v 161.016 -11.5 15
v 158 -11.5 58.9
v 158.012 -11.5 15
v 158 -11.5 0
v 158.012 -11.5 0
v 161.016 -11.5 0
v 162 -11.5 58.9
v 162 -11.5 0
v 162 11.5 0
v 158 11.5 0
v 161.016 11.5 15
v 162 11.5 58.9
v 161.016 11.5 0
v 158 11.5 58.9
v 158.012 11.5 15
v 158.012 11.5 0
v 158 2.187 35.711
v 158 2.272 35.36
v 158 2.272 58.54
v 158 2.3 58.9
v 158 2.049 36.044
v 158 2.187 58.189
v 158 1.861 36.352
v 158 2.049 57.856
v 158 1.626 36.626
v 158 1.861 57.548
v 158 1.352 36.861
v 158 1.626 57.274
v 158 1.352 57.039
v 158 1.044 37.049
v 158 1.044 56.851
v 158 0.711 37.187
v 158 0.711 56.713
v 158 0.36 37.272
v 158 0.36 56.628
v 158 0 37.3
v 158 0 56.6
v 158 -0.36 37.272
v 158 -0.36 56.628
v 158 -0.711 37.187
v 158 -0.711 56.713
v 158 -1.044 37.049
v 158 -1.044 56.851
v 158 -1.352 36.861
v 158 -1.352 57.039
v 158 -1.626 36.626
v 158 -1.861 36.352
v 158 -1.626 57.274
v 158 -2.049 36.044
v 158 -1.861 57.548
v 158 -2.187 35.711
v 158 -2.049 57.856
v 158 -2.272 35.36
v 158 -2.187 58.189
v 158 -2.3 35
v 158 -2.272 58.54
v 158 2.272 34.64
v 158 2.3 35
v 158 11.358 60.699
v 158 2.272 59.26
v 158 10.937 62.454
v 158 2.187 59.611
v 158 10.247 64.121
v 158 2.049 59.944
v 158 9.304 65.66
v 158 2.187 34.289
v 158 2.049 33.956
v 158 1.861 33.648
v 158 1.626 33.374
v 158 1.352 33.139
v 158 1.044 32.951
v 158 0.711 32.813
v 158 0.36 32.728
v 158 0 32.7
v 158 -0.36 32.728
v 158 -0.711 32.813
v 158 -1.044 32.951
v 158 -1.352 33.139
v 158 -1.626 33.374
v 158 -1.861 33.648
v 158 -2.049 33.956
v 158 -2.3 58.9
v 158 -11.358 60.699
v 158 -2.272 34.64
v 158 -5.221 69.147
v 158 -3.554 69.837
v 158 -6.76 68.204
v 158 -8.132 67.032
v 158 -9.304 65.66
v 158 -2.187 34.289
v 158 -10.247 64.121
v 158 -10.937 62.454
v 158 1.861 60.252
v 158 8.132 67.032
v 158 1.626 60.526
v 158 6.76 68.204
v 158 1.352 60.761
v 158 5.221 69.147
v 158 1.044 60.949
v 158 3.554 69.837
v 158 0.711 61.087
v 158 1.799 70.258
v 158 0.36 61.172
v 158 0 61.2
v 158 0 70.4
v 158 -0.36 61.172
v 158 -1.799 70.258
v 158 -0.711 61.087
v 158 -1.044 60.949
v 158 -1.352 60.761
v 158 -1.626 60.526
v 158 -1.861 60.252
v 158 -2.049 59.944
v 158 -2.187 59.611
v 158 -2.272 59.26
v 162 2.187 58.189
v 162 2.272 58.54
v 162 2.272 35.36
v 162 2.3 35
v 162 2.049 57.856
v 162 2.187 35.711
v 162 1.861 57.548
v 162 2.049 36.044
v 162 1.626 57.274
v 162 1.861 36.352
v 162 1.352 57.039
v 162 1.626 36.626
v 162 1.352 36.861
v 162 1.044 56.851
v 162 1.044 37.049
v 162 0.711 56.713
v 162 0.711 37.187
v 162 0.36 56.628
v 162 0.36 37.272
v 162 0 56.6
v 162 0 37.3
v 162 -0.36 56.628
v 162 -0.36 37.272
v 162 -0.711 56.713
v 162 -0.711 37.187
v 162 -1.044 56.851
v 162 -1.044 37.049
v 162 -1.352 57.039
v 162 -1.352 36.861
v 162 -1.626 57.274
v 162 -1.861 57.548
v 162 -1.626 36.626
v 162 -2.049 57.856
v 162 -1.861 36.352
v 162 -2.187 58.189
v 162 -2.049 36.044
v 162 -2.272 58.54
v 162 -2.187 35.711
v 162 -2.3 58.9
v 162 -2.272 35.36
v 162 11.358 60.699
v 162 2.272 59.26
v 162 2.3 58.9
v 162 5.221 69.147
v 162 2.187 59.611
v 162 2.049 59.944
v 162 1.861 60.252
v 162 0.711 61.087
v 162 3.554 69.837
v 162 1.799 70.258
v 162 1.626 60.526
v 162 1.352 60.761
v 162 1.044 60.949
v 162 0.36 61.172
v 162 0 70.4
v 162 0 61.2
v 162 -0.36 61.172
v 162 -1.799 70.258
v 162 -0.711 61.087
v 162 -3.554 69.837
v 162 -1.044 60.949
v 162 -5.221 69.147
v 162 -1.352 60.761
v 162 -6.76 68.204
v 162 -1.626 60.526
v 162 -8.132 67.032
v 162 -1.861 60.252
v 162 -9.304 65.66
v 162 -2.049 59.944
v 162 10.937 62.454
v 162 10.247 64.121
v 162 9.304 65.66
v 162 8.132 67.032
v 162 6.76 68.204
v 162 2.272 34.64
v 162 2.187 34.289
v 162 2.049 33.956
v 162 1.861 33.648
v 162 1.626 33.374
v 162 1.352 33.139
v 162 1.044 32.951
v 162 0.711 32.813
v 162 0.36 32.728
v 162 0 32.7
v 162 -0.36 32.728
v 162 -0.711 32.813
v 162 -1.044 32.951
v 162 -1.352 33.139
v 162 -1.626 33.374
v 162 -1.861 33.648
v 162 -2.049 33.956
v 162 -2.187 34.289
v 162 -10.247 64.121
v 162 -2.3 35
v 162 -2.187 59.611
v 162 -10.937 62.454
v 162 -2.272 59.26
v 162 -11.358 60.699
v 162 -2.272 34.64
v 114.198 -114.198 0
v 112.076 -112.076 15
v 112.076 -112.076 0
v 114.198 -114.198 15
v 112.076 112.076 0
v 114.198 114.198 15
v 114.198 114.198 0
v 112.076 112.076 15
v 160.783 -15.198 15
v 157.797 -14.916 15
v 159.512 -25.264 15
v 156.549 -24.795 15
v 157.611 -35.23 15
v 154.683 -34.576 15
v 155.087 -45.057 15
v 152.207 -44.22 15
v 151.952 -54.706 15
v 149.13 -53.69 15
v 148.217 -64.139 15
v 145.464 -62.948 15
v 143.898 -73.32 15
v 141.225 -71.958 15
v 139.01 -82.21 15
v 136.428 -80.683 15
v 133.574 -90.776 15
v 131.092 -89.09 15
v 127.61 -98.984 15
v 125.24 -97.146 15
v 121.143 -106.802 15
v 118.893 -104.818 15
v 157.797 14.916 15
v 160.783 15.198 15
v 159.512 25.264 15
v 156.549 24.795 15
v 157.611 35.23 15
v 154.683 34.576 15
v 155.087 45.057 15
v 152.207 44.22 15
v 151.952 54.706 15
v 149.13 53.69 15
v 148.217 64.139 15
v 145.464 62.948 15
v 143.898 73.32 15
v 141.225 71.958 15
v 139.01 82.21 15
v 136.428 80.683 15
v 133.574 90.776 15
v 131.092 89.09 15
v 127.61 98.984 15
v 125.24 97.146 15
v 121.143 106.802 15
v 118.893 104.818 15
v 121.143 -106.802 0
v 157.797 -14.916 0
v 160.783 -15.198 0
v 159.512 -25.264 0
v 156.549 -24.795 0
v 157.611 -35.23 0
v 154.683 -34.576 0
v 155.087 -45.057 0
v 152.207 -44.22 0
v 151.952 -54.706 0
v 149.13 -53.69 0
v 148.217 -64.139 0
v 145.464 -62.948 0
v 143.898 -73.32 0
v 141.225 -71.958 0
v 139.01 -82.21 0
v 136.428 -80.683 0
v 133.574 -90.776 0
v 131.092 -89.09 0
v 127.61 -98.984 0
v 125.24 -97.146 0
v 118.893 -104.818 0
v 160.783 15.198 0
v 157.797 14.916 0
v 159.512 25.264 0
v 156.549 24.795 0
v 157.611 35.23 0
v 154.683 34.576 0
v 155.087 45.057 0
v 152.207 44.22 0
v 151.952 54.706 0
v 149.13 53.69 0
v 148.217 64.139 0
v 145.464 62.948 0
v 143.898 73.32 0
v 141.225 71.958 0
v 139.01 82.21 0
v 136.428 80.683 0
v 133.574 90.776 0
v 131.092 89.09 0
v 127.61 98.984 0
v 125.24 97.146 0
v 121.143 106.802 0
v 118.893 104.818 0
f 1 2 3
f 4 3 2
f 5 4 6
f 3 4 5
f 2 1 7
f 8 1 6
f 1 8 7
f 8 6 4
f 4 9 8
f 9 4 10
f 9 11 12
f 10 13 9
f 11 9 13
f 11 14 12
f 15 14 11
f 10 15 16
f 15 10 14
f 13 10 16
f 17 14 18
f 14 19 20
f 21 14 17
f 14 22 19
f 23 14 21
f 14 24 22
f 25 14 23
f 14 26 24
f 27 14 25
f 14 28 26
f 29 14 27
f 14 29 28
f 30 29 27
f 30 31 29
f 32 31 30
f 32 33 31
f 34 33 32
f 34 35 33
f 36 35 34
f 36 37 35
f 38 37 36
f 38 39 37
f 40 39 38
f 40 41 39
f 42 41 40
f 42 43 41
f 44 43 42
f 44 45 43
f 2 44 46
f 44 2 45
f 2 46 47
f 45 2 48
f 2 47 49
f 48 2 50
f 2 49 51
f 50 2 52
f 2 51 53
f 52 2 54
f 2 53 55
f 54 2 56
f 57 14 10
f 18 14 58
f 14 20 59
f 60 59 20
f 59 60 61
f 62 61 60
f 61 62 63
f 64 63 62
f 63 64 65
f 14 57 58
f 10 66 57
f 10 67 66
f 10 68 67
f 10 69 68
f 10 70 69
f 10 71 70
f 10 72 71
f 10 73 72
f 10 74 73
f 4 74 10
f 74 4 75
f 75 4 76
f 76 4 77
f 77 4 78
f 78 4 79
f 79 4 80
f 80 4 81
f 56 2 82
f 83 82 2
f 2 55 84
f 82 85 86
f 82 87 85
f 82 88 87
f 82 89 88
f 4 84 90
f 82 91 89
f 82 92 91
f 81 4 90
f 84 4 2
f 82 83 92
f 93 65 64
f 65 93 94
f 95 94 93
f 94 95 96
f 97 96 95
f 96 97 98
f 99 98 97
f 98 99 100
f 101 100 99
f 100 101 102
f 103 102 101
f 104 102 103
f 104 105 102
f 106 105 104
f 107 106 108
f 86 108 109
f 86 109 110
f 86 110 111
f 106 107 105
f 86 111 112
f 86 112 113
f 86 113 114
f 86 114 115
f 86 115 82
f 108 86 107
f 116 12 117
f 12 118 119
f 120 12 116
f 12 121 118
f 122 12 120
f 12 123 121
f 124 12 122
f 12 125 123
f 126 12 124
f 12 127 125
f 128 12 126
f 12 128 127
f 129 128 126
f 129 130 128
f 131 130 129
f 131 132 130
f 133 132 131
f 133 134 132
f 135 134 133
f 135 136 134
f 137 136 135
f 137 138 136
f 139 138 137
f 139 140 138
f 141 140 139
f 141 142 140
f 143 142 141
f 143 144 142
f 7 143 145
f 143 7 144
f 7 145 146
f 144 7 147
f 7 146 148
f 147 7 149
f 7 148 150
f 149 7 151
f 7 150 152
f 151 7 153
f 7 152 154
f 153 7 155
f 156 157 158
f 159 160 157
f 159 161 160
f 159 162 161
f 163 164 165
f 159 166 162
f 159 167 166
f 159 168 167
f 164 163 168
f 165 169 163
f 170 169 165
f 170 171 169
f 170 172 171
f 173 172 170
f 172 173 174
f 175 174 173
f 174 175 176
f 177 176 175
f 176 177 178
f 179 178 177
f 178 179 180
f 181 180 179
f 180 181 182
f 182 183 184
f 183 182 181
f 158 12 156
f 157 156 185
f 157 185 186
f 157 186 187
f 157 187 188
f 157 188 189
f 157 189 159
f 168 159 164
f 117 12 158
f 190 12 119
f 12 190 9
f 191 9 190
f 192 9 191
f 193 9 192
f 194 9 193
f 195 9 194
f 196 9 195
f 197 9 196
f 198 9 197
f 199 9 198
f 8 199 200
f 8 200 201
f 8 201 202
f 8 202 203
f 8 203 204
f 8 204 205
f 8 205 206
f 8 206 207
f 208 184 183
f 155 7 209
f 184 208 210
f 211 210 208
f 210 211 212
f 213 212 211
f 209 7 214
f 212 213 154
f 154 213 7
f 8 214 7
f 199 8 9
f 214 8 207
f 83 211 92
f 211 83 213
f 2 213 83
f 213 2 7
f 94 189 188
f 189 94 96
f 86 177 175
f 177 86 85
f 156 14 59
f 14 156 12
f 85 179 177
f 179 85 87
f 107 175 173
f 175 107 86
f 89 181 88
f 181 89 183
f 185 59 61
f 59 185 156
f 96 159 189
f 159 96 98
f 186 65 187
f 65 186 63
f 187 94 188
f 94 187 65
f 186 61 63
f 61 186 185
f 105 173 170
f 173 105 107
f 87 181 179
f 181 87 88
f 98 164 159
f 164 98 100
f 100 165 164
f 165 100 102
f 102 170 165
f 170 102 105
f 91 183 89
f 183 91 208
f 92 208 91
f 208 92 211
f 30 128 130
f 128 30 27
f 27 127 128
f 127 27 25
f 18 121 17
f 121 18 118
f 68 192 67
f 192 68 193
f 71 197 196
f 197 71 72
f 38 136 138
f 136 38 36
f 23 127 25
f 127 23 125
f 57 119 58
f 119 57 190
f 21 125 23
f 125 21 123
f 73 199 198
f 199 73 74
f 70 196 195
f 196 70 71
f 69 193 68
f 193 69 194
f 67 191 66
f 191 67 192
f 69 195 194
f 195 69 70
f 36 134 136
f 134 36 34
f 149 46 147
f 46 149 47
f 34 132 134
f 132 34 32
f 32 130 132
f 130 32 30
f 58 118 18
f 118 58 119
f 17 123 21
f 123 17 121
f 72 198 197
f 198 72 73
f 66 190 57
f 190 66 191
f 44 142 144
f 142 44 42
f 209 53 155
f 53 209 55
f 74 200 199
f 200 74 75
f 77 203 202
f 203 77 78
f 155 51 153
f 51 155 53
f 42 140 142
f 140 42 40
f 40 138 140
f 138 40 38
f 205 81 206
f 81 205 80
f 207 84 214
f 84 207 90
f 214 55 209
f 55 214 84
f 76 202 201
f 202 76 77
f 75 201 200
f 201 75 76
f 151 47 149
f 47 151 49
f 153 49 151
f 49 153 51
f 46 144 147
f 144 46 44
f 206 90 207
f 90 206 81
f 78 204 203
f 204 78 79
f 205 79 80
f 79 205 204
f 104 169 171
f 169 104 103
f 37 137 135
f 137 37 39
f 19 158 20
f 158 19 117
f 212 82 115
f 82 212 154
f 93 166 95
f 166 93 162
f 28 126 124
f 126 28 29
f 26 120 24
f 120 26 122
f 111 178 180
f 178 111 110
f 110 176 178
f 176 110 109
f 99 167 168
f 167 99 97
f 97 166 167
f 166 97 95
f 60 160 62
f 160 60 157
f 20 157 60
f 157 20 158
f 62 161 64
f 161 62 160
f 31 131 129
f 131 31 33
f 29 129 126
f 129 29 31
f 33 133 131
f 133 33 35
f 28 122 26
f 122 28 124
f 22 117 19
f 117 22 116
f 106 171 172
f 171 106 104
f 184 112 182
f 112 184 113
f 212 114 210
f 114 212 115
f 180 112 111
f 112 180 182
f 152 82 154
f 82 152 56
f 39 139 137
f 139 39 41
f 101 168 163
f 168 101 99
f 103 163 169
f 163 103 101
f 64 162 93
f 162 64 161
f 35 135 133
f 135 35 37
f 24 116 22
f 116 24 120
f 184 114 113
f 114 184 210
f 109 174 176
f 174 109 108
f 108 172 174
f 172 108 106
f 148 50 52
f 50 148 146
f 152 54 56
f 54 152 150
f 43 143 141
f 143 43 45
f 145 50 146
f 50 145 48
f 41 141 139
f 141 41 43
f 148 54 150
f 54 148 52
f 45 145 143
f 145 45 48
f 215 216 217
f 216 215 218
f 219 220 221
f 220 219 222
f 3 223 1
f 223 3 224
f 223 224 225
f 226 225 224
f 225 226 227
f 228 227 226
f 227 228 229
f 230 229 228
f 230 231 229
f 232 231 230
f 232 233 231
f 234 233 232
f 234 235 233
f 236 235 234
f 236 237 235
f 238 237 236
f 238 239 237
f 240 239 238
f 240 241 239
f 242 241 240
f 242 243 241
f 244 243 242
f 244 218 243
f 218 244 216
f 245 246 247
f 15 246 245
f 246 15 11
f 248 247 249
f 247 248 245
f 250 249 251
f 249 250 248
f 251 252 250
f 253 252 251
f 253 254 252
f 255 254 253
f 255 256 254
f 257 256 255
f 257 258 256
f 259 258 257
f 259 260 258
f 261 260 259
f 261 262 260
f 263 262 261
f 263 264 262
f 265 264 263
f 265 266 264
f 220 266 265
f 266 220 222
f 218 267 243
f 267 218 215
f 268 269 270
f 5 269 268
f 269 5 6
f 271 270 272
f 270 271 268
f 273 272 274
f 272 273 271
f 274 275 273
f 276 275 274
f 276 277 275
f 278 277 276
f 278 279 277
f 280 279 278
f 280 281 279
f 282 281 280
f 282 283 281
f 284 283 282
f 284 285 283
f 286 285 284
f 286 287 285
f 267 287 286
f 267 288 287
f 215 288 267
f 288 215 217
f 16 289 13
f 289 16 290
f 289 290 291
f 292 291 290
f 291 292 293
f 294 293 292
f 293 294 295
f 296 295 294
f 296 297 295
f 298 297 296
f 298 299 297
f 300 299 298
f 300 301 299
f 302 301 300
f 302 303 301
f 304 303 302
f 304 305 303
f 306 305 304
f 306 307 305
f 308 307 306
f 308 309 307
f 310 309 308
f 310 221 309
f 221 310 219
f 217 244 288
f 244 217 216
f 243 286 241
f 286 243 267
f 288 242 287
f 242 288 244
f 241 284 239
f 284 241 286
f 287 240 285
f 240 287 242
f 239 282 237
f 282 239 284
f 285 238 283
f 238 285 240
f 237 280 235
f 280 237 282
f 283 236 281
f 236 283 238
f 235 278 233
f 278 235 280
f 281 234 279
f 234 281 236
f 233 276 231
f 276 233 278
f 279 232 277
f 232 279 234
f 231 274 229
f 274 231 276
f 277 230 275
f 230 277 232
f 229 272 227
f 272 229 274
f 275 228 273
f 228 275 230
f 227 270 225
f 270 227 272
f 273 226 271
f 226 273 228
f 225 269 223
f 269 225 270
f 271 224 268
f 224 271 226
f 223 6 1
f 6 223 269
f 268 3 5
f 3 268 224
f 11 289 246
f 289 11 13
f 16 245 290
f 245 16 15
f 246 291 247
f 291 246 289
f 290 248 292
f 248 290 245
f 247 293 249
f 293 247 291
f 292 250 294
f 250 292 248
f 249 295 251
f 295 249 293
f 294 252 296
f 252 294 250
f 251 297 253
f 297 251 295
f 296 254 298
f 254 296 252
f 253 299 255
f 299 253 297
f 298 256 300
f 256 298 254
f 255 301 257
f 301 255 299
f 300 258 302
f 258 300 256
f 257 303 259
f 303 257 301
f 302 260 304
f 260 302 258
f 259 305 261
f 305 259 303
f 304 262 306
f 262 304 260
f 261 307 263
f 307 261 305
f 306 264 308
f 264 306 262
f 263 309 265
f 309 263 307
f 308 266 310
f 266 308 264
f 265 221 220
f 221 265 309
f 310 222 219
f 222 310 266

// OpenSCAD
$fn=100;

/*
  Robot Vac Skirt Extender
  For Model: Hoover Performer Plus
  Author: Brian Khuu 2019
*/

// Hole Dia
hole_dia=4.6;

// Hole Spacing
hole_spacing=28.5-4.6;

// Skirt Length from lower hole
skirt_length=35;

// Thickness
thickness=4;

// Skirt Thickness
thickness_skirt=3;

// Width
width=hole_dia*5;

// radius of bot
bot_radius=160;

// Bottom Skirt Height
bot_skirt_h=15;

module minimum_skirt()
{
  translate([skirt_length,0,0])
  difference()
  {
    union()
    {
      hull()
      {
        translate([0,0,0])
          cylinder(d=width, h=thickness, $fn=40, center=true);
        translate([hole_spacing,0,0])
          cylinder(d=width, h=thickness, $fn=40, center=true);
        translate([-skirt_length,0,0])
          cube([0.001,width,thickness], center=true);
        // Rounded Bottom
        //translate([-skirt_length,0,0])
        //  rotate([90,0,0])
        //    cylinder(d=thickness, h=width, $fn=40, center=true);
      }
    }
    translate([0,0,0])
      cylinder(d=hole_dia, h=2+thickness, $fn=40, center=true);
    translate([hole_spacing,0,0])
      cylinder(d=hole_dia, h=2+thickness, $fn=40, center=true);
  }
}

module full_skirt()
{
  difference()
  //
  translate([bot_radius,0,0])
  rotate([0,-90,0])
  minimum_skirt();
  
  //
  rotate([0,0,-45])
  rotate_extrude(angle=90)
  translate([bot_radius,bot_skirt_h/2,0])
    square([thickness_skirt,bot_skirt_h], center=true);
}

full_skirt();
